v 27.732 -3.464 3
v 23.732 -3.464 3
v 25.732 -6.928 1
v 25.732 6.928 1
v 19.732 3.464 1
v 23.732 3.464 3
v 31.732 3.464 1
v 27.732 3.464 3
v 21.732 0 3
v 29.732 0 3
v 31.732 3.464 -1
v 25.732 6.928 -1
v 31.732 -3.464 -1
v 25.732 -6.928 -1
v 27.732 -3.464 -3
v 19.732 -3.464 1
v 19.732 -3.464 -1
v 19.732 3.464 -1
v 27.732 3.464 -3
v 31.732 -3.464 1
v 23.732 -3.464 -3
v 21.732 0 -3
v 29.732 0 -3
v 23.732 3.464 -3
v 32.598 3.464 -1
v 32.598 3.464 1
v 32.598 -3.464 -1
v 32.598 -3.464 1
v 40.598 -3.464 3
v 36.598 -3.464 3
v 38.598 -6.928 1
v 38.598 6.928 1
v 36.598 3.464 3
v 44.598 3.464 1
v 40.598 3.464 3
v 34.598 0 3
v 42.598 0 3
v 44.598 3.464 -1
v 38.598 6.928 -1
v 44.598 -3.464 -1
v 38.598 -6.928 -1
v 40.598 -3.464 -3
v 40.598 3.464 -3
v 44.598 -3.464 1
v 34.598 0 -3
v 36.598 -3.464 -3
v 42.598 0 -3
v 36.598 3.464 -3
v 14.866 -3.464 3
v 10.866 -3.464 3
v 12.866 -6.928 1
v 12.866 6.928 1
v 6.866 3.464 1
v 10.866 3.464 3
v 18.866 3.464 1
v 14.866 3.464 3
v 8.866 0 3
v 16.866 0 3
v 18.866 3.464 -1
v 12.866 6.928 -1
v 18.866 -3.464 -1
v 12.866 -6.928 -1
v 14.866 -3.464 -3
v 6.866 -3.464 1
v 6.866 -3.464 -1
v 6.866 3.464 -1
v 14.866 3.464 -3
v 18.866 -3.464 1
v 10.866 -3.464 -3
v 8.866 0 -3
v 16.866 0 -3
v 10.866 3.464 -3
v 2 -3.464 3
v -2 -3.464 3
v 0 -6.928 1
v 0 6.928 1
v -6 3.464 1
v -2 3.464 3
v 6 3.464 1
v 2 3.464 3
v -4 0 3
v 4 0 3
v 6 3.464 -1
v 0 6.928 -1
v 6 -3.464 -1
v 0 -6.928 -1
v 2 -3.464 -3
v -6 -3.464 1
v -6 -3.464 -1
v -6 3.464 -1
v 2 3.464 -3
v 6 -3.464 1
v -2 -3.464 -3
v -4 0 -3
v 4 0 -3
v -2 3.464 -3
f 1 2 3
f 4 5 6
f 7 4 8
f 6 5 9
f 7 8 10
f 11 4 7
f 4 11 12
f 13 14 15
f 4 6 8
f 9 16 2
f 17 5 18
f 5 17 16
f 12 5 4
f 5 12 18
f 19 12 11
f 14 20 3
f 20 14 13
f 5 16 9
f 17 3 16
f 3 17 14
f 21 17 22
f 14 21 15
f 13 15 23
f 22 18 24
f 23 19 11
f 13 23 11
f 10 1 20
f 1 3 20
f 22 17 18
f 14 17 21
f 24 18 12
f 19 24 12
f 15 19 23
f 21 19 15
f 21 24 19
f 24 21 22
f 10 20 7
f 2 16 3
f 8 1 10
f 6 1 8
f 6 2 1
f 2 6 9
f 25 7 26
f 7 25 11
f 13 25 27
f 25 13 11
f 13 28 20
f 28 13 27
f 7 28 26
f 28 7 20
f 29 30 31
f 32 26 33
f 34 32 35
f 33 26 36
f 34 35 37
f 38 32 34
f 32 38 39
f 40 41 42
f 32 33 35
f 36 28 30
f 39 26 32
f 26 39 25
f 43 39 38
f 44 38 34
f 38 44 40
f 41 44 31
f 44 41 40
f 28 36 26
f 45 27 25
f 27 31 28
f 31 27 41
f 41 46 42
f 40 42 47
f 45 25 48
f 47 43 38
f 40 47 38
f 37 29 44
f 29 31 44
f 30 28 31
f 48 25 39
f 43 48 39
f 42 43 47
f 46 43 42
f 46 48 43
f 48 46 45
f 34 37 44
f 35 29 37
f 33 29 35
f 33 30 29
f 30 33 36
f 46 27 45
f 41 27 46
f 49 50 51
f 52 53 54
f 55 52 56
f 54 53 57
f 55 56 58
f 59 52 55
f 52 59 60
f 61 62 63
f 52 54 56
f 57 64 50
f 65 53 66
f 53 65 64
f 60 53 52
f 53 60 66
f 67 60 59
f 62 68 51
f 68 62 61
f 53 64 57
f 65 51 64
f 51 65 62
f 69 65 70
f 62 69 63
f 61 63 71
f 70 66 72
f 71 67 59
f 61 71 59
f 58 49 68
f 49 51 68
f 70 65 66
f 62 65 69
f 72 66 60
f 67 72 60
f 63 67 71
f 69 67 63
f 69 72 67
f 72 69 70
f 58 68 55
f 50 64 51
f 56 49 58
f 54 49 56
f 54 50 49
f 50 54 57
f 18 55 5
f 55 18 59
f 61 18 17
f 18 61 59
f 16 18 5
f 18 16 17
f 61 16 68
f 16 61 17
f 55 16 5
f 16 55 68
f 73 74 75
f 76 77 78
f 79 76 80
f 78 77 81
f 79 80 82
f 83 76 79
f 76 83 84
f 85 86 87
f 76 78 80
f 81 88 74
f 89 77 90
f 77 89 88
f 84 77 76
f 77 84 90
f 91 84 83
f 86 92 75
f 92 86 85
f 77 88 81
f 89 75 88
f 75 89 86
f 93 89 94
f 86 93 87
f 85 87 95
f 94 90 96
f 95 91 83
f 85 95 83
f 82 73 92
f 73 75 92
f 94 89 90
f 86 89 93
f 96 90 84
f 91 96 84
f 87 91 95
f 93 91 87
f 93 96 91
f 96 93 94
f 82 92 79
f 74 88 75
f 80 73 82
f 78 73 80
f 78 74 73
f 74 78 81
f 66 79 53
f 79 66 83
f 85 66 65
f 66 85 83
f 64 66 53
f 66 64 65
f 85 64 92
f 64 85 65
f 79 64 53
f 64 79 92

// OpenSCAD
// file: gem-common.scad
angles = [for(i = [0:5]) i * (360 / 6)];

inner_poly_radius=8 * cos(60);
outer_poly_radius=8 * cos(30);
outer_poly_z=1;
inner_poly_z=3;


gap_between_gems = cos(30);
distance_to_corner = cos(30) * outer_poly_radius * 2 + gap_between_gems;


module edge_connector(angle = 0) {
    function make_point_2d(r, angle, height) = [r * sin(angle), height];
    
    points = [
        make_point_2d(outer_poly_radius, 30, outer_poly_z),
        make_point_2d(outer_poly_radius, -30, outer_poly_z),
        make_point_2d(outer_poly_radius, -30, -outer_poly_z),
        make_point_2d(outer_poly_radius, 30, -outer_poly_z),
    ];
    
    rotate([0,0,angle]) {
        translate([(distance_to_corner - gap_between_gems) / 2,0,0]){
            rotate([90, 0, 90]) {
                linear_extrude(gap_between_gems) {
                    polygon(points);
                }
            }
        }
    }
}

module move(distance, angle) {
    translate([distance * cos(angle), distance * sin(angle), 0]) {
        children();
    }
}


module corner_connector(angle=0) {
    r = 0.5;
    rotate_angle = angle + 30;
    move(outer_poly_radius + r, rotate_angle) {
        translate([0,0, -outer_poly_z]) {
            rotate([0,0,-rotate_angle]) {
                cylinder($fn=3, r=r, h=outer_poly_z * 2);
            }
        }
    }
}

module gem() {
    function make_point(r, angle, height) = [r * cos(angle), r * sin(angle), height];
    
    top_poly = [for(th = angles) make_point(inner_poly_radius, th, inner_poly_z)];
    top_outer_poly = [for(th = angles) make_point(outer_poly_radius, th + 30, outer_poly_z)];
    bottom_outer_poly = [for(th = angles) make_point(outer_poly_radius, th + 30, -outer_poly_z)];
    bottom_poly = [for(th = angles) make_point(inner_poly_radius, th, -inner_poly_z)];
 
    function rot(n, base) = (n + 1 - base) % 6 + base;
    
    faces = [
        [5, 4, 3, 2, 1, 0],
        for(i = [0:5]) [i, (i + 1) % 6, i + 6],
        for(i = [6:11]) [i, (i - 5) % 6, rot(i, 6)],
        for(i = [6:11]) [i, rot(i, 6), rot(i, 6) + 6, i + 6],
        for(i = [12:17]) [i, rot(i, 12), rot(i, 12) + 6],
        for(i = [18:23]) [i, i-6, rot(i, 18)],
        [18, 19, 20, 21, 22, 23],
    ];
    
    polyhedron(
        concat(
            top_poly,
            top_outer_poly,
            bottom_outer_poly,
            bottom_poly
        ),
        faces
    );
}
// main file
include <./gem-common.scad>

gem();
edge_connector();
move(distance_to_corner, 0) {
    gem();
    edge_connector();
    move(distance_to_corner, 0) {
        gem();
        edge_connector();
        move(distance_to_corner, 0) {
            gem();   
        }
    }
}
